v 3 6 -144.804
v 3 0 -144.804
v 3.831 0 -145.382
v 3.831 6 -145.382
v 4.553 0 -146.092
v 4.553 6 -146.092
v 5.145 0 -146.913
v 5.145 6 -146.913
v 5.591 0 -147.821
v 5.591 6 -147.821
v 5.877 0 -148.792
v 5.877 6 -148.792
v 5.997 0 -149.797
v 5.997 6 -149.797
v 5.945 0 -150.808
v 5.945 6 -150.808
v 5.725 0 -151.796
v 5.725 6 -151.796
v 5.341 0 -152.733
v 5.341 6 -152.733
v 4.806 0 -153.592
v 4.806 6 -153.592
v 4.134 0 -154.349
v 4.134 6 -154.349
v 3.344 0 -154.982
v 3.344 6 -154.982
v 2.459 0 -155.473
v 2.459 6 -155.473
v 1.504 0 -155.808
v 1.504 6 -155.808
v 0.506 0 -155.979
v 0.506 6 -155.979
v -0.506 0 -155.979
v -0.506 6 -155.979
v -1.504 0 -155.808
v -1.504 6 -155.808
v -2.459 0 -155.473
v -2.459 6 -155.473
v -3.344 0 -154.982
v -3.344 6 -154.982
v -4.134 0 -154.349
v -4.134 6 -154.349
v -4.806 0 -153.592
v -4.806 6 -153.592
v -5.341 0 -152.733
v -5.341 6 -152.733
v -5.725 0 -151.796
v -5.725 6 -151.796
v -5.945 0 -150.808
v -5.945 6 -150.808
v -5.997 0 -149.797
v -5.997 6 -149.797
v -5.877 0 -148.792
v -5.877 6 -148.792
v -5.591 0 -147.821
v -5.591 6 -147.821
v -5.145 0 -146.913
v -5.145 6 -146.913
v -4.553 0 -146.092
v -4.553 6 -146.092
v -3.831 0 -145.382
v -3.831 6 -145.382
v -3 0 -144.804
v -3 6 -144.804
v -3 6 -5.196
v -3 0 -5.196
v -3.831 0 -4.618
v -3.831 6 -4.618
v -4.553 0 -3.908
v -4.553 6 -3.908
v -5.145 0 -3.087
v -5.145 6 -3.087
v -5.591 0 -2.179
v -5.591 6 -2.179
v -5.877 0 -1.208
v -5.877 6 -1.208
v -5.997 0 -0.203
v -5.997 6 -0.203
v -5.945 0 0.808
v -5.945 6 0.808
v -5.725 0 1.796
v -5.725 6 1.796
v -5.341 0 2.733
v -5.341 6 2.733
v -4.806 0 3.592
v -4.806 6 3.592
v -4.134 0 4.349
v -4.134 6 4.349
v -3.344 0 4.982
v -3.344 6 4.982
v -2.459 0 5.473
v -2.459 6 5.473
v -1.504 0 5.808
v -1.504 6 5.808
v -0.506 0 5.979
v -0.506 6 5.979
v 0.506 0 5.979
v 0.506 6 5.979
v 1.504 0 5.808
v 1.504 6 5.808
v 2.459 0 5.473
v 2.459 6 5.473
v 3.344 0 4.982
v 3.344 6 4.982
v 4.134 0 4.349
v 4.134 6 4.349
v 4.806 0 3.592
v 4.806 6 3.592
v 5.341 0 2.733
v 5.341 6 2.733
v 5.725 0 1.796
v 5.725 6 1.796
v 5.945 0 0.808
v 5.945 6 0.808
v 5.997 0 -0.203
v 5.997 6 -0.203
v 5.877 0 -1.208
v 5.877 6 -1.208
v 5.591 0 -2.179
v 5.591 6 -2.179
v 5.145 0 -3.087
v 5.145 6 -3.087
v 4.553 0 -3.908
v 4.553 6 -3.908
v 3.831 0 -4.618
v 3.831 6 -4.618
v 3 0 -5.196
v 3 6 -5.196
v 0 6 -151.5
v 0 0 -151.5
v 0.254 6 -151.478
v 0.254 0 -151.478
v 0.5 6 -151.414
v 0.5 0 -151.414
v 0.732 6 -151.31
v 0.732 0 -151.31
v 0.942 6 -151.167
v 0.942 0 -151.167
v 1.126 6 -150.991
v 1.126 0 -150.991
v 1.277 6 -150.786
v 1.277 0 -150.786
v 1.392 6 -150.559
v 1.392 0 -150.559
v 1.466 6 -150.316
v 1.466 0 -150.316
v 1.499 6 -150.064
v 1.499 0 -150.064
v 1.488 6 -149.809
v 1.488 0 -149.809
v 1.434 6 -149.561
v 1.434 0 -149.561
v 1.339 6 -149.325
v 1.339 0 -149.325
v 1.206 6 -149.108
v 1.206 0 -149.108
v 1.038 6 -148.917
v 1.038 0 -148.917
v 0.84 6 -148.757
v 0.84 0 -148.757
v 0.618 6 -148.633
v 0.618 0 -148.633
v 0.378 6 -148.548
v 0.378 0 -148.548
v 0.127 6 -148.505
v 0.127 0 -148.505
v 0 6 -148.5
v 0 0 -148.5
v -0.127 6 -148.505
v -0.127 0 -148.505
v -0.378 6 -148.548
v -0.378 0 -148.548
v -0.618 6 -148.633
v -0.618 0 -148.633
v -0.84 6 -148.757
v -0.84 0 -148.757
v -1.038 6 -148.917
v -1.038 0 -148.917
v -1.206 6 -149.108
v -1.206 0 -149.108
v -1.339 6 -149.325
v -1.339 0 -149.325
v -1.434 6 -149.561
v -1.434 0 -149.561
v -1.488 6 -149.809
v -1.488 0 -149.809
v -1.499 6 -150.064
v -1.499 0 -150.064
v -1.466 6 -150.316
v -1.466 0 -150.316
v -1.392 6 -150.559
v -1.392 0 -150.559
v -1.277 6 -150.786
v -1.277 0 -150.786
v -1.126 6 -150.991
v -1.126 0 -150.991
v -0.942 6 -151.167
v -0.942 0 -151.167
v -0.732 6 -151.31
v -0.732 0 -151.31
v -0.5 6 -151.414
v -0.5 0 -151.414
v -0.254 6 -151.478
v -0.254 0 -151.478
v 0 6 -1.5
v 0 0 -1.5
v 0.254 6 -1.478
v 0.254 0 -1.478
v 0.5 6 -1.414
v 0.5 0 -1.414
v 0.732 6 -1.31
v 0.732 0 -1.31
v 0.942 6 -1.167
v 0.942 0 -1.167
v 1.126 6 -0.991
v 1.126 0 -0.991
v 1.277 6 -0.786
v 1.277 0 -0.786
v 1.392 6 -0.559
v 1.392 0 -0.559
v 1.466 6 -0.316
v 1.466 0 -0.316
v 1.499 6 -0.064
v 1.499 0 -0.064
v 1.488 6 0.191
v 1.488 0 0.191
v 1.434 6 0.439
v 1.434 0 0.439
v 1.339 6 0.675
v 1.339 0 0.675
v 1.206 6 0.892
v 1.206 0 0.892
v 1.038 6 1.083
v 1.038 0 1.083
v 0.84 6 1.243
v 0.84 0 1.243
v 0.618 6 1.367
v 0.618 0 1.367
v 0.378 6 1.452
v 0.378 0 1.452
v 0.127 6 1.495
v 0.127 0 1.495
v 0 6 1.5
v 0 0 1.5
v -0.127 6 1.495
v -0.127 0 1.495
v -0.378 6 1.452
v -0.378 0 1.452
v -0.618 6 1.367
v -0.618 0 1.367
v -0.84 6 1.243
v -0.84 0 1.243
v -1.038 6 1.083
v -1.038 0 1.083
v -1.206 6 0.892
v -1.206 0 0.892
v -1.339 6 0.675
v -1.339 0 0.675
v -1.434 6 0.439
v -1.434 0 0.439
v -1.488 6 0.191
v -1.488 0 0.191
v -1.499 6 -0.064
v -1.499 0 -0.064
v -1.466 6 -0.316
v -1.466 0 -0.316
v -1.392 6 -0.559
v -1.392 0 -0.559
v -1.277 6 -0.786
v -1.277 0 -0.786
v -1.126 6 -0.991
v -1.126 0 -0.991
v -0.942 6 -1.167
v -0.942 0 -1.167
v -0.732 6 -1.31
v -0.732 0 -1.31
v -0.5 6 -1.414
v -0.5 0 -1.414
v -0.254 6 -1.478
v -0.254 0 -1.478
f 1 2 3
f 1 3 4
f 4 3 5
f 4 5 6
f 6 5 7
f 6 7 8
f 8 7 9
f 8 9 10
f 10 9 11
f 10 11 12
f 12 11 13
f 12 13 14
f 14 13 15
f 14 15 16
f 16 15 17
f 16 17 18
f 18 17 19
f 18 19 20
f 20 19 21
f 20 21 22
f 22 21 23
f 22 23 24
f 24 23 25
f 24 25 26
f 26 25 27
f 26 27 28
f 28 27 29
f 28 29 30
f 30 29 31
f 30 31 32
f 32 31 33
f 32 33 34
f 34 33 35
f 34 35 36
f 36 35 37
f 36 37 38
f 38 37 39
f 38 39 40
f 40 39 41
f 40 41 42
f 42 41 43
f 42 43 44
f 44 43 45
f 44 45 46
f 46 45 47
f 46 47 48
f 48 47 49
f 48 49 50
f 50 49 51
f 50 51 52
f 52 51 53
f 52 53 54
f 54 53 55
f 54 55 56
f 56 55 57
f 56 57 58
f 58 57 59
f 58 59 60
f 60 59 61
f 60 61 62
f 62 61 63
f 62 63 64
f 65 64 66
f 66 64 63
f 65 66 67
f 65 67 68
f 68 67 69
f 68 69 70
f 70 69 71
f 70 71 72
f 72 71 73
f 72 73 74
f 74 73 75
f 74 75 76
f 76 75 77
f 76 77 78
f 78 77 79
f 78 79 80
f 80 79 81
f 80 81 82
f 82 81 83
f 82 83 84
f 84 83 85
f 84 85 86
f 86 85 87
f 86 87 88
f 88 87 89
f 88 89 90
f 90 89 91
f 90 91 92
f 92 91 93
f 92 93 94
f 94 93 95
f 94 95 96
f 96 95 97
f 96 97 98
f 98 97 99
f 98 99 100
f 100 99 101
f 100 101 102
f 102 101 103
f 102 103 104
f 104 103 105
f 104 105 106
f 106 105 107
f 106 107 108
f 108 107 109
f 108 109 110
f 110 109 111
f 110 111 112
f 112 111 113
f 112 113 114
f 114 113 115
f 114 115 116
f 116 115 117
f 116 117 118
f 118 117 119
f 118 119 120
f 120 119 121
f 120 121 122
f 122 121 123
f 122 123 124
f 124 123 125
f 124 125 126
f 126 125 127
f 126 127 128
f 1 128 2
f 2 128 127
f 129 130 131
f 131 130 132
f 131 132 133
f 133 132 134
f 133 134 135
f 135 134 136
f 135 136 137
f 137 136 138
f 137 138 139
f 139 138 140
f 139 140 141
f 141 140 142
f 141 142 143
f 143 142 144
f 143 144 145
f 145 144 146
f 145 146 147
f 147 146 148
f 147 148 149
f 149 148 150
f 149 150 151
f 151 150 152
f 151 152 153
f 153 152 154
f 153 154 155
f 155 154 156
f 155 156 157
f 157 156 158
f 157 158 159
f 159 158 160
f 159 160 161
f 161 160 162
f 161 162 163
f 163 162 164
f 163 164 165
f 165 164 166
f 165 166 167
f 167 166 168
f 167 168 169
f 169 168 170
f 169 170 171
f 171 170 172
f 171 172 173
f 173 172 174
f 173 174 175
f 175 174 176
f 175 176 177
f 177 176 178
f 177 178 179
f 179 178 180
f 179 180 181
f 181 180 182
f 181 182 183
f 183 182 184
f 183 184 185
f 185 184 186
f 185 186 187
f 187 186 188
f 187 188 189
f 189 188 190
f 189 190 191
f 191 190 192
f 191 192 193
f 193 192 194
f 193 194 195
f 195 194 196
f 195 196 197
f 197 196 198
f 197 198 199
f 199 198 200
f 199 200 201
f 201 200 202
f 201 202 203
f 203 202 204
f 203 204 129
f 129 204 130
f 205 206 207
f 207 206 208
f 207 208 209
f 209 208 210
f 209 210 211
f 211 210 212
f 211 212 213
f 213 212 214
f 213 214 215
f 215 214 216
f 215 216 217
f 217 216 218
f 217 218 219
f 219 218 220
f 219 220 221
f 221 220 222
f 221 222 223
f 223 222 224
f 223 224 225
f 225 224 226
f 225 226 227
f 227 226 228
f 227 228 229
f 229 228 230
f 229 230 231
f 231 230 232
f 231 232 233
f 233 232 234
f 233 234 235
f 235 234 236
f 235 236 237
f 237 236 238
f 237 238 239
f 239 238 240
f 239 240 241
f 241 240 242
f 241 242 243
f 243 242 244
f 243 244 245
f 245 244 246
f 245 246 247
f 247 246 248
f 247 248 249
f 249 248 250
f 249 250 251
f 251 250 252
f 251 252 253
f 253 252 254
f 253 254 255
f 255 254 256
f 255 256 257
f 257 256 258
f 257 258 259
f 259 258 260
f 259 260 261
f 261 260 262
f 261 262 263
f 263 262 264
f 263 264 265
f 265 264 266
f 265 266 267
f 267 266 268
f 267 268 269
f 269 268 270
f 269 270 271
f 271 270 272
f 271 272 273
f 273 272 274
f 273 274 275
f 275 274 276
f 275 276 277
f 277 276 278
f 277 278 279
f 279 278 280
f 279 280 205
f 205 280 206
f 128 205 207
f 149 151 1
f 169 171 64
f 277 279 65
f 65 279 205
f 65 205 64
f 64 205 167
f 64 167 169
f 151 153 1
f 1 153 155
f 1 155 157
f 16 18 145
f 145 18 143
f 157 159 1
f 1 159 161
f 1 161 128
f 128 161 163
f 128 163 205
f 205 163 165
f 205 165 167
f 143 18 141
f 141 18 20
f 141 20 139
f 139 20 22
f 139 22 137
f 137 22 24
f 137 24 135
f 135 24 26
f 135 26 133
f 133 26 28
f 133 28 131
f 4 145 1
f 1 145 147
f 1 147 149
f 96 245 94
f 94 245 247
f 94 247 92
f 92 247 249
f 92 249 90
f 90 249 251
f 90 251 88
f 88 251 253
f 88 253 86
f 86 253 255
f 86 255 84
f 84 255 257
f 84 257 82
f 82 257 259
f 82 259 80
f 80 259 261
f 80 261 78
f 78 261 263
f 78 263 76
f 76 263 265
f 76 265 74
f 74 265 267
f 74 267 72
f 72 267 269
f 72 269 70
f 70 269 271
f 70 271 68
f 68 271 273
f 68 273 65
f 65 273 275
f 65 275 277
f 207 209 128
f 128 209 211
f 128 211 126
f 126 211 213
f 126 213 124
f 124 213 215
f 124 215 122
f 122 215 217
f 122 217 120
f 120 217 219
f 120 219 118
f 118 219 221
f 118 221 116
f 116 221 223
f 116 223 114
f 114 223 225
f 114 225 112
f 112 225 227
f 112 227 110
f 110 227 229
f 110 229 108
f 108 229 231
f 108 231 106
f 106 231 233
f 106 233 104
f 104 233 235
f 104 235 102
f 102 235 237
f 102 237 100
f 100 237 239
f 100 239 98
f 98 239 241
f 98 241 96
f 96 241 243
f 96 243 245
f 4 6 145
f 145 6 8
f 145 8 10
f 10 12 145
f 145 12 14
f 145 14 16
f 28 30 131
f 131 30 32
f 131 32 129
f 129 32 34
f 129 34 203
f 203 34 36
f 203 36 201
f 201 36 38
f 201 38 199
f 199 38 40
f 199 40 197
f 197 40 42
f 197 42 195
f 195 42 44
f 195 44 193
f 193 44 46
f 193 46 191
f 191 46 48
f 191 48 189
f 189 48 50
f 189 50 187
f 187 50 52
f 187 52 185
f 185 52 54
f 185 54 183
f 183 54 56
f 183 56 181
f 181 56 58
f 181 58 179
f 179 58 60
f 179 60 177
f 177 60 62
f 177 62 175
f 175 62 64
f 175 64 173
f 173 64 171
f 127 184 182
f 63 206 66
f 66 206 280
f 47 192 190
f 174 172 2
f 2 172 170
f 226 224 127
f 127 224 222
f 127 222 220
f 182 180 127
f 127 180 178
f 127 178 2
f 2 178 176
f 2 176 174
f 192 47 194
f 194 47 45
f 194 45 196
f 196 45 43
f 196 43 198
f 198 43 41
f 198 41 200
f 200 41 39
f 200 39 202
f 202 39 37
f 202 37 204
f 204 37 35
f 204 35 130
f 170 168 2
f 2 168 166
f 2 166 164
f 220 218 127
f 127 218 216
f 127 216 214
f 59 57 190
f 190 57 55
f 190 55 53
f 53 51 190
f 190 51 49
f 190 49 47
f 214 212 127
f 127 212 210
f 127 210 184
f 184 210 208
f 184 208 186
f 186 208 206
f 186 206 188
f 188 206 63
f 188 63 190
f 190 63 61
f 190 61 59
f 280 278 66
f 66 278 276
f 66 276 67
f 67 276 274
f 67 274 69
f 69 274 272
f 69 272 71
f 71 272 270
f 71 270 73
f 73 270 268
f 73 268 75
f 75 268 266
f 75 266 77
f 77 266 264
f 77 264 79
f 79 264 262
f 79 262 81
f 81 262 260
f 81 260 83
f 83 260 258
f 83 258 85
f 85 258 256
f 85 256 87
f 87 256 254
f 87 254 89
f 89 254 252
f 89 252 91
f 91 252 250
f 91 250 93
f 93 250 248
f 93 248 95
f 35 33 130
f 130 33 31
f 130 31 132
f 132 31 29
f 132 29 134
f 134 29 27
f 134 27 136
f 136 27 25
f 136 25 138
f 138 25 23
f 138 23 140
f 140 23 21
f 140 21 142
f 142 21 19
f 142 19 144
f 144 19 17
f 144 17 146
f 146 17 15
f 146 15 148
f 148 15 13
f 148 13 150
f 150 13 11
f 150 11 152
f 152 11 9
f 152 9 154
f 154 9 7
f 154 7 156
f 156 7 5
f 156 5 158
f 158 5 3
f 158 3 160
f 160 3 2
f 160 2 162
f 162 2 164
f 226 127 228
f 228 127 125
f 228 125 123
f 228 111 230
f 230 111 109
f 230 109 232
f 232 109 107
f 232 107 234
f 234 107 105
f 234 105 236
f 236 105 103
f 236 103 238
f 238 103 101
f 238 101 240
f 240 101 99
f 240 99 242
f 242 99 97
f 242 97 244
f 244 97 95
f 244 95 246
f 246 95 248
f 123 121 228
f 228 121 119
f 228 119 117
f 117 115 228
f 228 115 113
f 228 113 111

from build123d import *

# Parameters (mm, degrees)
BOSS_EXTRUDE1_DEPTH = 6


with BuildPart() as part:
    # Sketch2 → Boss-Extrude1 (new body)
    with BuildSketch(Plane(origin=(0, 0, 0), x_dir=(1, 0, 0), z_dir=(0, 1, 0))):
        with BuildLine():
            ThreePointArc((1.5, 0), (0, -1.5), (-1.5, 0))
            Line((-1.5, 0), (-3, 0))
            Line((-3, 0), (-3, 5.196152423))
            ThreePointArc((-3, 5.196152423), (-3, -5.196152423), (6, 0))
            ThreePointArc((6, 0), (5.196152423, 3), (3, 5.196152423))
            Line((3, 5.196152423), (3, 0))
            Line((3, 0), (1.5, 0))
        make_face()
        with BuildLine():
            Line((0, 6), (0, 1.5))
            ThreePointArc((0, 1.5), (1.060660172, 1.060660172), (1.5, 0))
            Line((1.5, 0), (3, 0))
            Line((3, 0), (3, 5.196152423))
            ThreePointArc((3, 5.196152423), (1.552914271, 5.795554958), (0, 6))
        make_face()
        with BuildLine():
            ThreePointArc((-1.5, 0), (-1.060660172, 1.060660172), (0, 1.5))
            Line((0, 1.5), (0, 6))
            ThreePointArc((0, 6), (-1.552914271, 5.795554958), (-3, 5.196152423))
            Line((-3, 5.196152423), (-3, 0))
            Line((-3, 0), (-1.5, 0))
        make_face()
        with BuildLine():
            Line((0, 144), (0, 6))
            ThreePointArc((0, 6), (1.552914271, 5.795554958), (3, 5.196152423))
            Line((3, 5.196152423), (3, 144.803847577))
            ThreePointArc((3, 144.803847577), (1.552914271, 144.204445042), (0, 144))
        make_face()
        with BuildLine():
            ThreePointArc((-3, 5.196152423), (-1.552914271, 5.795554958), (0, 6))
            Line((0, 6), (0, 144))
            ThreePointArc((0, 144), (-1.552914271, 144.204445042), (-3, 144.803847577))
            Line((-3, 144.803847577), (-3, 5.196152423))
        make_face()
        with BuildLine():
            Line((0, 148.5), (0, 144))
            ThreePointArc((0, 144), (1.552914271, 144.204445042), (3, 144.803847577))
            Line((3, 144.803847577), (3, 150))
            Line((3, 150), (1.5, 150))
            ThreePointArc((1.5, 150), (1.060660172, 148.939339828), (0, 148.5))
        make_face()
        with BuildLine():
            ThreePointArc((-3, 144.803847577), (-1.552914271, 144.204445042), (0, 144))
            Line((0, 144), (0, 148.5))
            ThreePointArc((0, 148.5), (-1.060660172, 148.939339828), (-1.5, 150))
            Line((-1.5, 150), (-3, 150))
            Line((-3, 150), (-3, 144.803847577))
        make_face()
        with BuildLine():
            ThreePointArc((6, 150), (-3, 155.196152423), (-3, 144.803847577))
            Line((-3, 144.803847577), (-3, 150))
            Line((-3, 150), (-1.5, 150))
            ThreePointArc((-1.5, 150), (0, 151.5), (1.5, 150))
            Line((1.5, 150), (3, 150))
            Line((3, 150), (3, 144.803847577))
            ThreePointArc((3, 144.803847577), (5.196152423, 147), (6, 150))
        make_face()
    extrude(amount=BOSS_EXTRUDE1_DEPTH)


solid = part.part
